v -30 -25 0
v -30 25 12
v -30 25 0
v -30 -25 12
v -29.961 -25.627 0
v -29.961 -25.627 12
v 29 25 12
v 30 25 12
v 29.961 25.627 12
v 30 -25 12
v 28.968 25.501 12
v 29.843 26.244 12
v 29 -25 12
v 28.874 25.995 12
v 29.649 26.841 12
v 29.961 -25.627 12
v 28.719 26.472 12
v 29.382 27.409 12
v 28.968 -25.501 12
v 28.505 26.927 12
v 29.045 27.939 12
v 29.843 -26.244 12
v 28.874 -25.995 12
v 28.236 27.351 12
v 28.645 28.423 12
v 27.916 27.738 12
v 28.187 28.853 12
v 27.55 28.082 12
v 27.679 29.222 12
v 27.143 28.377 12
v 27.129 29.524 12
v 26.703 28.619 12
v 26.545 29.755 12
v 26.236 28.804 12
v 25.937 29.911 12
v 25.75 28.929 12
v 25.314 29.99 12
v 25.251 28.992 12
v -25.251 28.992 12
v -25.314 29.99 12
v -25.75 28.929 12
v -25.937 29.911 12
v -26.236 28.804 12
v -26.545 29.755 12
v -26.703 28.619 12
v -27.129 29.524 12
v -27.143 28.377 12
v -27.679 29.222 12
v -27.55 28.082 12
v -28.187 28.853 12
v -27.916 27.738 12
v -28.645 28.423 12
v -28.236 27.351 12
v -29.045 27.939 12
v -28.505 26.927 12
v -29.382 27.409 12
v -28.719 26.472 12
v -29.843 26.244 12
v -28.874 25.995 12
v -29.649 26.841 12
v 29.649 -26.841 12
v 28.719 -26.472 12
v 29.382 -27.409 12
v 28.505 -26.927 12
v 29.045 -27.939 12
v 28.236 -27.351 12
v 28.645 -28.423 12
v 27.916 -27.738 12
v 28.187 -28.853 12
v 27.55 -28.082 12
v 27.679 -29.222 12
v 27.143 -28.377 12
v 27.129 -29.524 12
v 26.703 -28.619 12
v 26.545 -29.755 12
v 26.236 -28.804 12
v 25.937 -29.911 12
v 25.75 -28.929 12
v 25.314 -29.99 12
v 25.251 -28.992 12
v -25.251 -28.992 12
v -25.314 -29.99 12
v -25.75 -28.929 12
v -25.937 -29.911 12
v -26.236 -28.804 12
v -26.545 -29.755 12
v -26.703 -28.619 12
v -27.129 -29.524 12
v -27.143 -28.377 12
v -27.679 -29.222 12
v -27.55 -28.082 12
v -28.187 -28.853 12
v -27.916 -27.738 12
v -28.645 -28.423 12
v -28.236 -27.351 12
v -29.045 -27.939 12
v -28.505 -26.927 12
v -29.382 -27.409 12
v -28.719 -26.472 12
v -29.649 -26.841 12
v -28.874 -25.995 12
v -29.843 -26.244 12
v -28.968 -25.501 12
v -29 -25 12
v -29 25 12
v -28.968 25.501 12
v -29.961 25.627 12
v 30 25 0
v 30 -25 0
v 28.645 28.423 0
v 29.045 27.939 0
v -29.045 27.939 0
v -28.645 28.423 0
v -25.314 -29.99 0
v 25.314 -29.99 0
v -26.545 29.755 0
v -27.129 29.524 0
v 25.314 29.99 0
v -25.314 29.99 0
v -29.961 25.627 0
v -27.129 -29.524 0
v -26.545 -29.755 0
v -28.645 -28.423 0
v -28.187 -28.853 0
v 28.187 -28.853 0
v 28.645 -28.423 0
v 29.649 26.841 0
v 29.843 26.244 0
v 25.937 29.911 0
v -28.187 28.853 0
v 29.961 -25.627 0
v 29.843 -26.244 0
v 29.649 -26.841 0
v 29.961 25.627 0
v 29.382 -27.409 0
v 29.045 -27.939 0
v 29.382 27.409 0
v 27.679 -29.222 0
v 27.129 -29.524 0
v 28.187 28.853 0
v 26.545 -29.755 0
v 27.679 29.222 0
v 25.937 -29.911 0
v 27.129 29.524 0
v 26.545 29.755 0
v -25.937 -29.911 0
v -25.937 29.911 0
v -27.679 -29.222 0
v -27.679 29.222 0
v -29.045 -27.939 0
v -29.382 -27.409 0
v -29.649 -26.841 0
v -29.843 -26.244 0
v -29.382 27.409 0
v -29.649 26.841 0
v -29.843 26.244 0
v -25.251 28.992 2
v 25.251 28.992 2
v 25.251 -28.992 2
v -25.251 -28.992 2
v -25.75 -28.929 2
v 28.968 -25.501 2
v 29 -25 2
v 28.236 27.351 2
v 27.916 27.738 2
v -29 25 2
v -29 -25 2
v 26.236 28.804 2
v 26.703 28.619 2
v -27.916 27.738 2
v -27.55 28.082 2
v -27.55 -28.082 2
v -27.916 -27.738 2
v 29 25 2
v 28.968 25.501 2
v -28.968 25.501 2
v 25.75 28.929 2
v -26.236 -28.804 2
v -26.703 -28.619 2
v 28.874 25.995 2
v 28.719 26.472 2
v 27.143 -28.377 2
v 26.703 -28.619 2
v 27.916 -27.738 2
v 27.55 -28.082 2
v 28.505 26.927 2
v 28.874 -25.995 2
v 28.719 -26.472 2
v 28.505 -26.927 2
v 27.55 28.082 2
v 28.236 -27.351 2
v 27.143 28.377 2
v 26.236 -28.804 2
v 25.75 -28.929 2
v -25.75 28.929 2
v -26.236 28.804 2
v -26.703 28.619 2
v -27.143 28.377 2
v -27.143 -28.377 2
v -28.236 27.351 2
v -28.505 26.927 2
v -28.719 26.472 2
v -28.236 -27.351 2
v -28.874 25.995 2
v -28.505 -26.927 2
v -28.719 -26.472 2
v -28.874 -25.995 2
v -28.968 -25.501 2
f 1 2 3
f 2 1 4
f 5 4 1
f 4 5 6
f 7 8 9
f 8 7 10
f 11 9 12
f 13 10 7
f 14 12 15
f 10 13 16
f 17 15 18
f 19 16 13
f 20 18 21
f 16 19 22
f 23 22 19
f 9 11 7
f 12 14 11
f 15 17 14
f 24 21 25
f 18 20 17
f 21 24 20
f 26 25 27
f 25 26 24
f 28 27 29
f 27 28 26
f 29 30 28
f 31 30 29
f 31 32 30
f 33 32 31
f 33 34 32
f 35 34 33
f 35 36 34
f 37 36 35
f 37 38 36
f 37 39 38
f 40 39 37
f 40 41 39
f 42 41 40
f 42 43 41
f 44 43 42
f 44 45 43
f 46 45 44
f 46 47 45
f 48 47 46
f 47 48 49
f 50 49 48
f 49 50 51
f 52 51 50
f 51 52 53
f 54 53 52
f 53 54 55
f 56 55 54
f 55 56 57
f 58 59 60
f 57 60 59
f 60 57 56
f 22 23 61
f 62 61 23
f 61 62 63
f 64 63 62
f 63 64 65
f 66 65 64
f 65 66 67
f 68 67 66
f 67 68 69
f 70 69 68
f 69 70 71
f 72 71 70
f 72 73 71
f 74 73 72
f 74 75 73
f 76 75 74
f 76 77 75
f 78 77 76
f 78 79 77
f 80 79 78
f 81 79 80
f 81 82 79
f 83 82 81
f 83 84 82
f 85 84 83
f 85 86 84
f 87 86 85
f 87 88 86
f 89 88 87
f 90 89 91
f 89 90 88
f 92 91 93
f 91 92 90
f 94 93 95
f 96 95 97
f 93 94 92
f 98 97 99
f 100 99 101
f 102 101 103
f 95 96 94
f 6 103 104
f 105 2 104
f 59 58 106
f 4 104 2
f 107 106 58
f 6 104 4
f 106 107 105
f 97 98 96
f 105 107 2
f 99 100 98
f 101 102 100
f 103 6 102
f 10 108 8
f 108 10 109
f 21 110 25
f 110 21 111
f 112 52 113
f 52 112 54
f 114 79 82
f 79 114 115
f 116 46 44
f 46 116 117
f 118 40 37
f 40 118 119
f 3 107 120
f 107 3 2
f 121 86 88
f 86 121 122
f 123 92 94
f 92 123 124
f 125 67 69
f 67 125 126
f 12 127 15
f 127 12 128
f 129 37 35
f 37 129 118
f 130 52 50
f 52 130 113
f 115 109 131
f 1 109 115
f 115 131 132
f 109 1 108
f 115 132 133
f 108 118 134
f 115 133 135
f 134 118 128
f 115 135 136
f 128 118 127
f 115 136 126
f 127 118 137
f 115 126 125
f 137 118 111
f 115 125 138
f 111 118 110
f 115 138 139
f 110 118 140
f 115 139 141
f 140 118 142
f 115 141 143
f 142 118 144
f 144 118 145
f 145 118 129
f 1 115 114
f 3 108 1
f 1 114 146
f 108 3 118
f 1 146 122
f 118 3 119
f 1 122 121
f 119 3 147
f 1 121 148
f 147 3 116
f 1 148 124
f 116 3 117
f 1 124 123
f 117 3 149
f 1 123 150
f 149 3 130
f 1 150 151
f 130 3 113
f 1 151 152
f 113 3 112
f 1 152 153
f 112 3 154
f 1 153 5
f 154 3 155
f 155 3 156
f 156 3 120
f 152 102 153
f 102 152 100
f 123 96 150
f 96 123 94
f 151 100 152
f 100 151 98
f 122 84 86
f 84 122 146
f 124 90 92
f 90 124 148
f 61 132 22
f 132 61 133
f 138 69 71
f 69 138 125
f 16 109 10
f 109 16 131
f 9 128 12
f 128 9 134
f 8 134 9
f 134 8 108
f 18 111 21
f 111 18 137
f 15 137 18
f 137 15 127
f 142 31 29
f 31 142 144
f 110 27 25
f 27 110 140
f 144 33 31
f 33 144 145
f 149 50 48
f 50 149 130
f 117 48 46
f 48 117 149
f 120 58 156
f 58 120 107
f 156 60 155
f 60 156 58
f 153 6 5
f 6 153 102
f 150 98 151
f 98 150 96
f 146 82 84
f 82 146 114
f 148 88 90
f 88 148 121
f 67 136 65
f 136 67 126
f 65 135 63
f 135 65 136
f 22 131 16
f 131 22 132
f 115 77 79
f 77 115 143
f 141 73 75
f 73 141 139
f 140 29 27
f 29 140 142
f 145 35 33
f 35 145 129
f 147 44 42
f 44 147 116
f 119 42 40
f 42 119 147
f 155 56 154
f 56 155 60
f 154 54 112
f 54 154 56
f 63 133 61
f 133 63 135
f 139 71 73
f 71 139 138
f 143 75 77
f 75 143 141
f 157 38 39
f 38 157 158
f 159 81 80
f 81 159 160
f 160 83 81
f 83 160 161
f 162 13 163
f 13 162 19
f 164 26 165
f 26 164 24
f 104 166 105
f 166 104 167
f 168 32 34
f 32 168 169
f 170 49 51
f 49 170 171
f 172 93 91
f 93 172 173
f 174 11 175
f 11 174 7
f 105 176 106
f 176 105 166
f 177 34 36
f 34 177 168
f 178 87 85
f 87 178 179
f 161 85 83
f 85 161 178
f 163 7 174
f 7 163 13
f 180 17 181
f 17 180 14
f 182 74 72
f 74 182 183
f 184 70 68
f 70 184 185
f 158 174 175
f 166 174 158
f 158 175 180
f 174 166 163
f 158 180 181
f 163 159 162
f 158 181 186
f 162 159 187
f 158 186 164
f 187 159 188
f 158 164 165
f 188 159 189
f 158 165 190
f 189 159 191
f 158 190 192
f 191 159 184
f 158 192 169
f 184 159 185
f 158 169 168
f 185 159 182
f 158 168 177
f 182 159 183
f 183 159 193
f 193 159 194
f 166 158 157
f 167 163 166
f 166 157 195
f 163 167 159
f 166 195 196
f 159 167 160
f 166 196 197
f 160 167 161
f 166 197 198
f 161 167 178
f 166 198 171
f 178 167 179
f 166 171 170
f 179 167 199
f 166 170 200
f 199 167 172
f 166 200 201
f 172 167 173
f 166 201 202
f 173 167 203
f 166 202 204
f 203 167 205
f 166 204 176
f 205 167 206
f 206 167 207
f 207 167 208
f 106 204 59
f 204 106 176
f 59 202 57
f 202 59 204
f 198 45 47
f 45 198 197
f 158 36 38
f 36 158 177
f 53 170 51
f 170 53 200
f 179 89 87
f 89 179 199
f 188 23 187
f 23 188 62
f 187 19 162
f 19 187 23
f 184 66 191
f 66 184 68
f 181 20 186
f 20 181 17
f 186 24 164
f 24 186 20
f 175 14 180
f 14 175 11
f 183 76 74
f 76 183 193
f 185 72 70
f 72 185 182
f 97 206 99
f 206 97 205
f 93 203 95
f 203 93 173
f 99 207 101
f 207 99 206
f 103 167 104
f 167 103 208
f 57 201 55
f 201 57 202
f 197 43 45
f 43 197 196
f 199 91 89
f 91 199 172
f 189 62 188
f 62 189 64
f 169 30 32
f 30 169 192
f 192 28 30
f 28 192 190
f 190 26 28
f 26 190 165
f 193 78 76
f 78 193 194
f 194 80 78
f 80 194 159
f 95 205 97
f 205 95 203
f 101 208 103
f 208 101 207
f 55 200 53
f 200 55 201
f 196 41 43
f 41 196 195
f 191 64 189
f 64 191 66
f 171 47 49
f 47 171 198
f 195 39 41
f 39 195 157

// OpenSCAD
$fn = 50;


difference() {
	union() {
		hull() {
			translate(v = [-25.0000000000, 25.0000000000, 0]) {
				cylinder(h = 12, r = 5);
			}
			translate(v = [25.0000000000, 25.0000000000, 0]) {
				cylinder(h = 12, r = 5);
			}
			translate(v = [-25.0000000000, -25.0000000000, 0]) {
				cylinder(h = 12, r = 5);
			}
			translate(v = [25.0000000000, -25.0000000000, 0]) {
				cylinder(h = 12, r = 5);
			}
		}
	}
	union() {
		translate(v = [0, 0, 2]) {
			hull() {
				translate(v = [-25.0000000000, 25.0000000000, 0]) {
					cylinder(h = 10, r = 4);
				}
				translate(v = [25.0000000000, 25.0000000000, 0]) {
					cylinder(h = 10, r = 4);
				}
				translate(v = [-25.0000000000, -25.0000000000, 0]) {
					cylinder(h = 10, r = 4);
				}
				translate(v = [25.0000000000, -25.0000000000, 0]) {
					cylinder(h = 10, r = 4);
				}
			}
		}
	}
}
